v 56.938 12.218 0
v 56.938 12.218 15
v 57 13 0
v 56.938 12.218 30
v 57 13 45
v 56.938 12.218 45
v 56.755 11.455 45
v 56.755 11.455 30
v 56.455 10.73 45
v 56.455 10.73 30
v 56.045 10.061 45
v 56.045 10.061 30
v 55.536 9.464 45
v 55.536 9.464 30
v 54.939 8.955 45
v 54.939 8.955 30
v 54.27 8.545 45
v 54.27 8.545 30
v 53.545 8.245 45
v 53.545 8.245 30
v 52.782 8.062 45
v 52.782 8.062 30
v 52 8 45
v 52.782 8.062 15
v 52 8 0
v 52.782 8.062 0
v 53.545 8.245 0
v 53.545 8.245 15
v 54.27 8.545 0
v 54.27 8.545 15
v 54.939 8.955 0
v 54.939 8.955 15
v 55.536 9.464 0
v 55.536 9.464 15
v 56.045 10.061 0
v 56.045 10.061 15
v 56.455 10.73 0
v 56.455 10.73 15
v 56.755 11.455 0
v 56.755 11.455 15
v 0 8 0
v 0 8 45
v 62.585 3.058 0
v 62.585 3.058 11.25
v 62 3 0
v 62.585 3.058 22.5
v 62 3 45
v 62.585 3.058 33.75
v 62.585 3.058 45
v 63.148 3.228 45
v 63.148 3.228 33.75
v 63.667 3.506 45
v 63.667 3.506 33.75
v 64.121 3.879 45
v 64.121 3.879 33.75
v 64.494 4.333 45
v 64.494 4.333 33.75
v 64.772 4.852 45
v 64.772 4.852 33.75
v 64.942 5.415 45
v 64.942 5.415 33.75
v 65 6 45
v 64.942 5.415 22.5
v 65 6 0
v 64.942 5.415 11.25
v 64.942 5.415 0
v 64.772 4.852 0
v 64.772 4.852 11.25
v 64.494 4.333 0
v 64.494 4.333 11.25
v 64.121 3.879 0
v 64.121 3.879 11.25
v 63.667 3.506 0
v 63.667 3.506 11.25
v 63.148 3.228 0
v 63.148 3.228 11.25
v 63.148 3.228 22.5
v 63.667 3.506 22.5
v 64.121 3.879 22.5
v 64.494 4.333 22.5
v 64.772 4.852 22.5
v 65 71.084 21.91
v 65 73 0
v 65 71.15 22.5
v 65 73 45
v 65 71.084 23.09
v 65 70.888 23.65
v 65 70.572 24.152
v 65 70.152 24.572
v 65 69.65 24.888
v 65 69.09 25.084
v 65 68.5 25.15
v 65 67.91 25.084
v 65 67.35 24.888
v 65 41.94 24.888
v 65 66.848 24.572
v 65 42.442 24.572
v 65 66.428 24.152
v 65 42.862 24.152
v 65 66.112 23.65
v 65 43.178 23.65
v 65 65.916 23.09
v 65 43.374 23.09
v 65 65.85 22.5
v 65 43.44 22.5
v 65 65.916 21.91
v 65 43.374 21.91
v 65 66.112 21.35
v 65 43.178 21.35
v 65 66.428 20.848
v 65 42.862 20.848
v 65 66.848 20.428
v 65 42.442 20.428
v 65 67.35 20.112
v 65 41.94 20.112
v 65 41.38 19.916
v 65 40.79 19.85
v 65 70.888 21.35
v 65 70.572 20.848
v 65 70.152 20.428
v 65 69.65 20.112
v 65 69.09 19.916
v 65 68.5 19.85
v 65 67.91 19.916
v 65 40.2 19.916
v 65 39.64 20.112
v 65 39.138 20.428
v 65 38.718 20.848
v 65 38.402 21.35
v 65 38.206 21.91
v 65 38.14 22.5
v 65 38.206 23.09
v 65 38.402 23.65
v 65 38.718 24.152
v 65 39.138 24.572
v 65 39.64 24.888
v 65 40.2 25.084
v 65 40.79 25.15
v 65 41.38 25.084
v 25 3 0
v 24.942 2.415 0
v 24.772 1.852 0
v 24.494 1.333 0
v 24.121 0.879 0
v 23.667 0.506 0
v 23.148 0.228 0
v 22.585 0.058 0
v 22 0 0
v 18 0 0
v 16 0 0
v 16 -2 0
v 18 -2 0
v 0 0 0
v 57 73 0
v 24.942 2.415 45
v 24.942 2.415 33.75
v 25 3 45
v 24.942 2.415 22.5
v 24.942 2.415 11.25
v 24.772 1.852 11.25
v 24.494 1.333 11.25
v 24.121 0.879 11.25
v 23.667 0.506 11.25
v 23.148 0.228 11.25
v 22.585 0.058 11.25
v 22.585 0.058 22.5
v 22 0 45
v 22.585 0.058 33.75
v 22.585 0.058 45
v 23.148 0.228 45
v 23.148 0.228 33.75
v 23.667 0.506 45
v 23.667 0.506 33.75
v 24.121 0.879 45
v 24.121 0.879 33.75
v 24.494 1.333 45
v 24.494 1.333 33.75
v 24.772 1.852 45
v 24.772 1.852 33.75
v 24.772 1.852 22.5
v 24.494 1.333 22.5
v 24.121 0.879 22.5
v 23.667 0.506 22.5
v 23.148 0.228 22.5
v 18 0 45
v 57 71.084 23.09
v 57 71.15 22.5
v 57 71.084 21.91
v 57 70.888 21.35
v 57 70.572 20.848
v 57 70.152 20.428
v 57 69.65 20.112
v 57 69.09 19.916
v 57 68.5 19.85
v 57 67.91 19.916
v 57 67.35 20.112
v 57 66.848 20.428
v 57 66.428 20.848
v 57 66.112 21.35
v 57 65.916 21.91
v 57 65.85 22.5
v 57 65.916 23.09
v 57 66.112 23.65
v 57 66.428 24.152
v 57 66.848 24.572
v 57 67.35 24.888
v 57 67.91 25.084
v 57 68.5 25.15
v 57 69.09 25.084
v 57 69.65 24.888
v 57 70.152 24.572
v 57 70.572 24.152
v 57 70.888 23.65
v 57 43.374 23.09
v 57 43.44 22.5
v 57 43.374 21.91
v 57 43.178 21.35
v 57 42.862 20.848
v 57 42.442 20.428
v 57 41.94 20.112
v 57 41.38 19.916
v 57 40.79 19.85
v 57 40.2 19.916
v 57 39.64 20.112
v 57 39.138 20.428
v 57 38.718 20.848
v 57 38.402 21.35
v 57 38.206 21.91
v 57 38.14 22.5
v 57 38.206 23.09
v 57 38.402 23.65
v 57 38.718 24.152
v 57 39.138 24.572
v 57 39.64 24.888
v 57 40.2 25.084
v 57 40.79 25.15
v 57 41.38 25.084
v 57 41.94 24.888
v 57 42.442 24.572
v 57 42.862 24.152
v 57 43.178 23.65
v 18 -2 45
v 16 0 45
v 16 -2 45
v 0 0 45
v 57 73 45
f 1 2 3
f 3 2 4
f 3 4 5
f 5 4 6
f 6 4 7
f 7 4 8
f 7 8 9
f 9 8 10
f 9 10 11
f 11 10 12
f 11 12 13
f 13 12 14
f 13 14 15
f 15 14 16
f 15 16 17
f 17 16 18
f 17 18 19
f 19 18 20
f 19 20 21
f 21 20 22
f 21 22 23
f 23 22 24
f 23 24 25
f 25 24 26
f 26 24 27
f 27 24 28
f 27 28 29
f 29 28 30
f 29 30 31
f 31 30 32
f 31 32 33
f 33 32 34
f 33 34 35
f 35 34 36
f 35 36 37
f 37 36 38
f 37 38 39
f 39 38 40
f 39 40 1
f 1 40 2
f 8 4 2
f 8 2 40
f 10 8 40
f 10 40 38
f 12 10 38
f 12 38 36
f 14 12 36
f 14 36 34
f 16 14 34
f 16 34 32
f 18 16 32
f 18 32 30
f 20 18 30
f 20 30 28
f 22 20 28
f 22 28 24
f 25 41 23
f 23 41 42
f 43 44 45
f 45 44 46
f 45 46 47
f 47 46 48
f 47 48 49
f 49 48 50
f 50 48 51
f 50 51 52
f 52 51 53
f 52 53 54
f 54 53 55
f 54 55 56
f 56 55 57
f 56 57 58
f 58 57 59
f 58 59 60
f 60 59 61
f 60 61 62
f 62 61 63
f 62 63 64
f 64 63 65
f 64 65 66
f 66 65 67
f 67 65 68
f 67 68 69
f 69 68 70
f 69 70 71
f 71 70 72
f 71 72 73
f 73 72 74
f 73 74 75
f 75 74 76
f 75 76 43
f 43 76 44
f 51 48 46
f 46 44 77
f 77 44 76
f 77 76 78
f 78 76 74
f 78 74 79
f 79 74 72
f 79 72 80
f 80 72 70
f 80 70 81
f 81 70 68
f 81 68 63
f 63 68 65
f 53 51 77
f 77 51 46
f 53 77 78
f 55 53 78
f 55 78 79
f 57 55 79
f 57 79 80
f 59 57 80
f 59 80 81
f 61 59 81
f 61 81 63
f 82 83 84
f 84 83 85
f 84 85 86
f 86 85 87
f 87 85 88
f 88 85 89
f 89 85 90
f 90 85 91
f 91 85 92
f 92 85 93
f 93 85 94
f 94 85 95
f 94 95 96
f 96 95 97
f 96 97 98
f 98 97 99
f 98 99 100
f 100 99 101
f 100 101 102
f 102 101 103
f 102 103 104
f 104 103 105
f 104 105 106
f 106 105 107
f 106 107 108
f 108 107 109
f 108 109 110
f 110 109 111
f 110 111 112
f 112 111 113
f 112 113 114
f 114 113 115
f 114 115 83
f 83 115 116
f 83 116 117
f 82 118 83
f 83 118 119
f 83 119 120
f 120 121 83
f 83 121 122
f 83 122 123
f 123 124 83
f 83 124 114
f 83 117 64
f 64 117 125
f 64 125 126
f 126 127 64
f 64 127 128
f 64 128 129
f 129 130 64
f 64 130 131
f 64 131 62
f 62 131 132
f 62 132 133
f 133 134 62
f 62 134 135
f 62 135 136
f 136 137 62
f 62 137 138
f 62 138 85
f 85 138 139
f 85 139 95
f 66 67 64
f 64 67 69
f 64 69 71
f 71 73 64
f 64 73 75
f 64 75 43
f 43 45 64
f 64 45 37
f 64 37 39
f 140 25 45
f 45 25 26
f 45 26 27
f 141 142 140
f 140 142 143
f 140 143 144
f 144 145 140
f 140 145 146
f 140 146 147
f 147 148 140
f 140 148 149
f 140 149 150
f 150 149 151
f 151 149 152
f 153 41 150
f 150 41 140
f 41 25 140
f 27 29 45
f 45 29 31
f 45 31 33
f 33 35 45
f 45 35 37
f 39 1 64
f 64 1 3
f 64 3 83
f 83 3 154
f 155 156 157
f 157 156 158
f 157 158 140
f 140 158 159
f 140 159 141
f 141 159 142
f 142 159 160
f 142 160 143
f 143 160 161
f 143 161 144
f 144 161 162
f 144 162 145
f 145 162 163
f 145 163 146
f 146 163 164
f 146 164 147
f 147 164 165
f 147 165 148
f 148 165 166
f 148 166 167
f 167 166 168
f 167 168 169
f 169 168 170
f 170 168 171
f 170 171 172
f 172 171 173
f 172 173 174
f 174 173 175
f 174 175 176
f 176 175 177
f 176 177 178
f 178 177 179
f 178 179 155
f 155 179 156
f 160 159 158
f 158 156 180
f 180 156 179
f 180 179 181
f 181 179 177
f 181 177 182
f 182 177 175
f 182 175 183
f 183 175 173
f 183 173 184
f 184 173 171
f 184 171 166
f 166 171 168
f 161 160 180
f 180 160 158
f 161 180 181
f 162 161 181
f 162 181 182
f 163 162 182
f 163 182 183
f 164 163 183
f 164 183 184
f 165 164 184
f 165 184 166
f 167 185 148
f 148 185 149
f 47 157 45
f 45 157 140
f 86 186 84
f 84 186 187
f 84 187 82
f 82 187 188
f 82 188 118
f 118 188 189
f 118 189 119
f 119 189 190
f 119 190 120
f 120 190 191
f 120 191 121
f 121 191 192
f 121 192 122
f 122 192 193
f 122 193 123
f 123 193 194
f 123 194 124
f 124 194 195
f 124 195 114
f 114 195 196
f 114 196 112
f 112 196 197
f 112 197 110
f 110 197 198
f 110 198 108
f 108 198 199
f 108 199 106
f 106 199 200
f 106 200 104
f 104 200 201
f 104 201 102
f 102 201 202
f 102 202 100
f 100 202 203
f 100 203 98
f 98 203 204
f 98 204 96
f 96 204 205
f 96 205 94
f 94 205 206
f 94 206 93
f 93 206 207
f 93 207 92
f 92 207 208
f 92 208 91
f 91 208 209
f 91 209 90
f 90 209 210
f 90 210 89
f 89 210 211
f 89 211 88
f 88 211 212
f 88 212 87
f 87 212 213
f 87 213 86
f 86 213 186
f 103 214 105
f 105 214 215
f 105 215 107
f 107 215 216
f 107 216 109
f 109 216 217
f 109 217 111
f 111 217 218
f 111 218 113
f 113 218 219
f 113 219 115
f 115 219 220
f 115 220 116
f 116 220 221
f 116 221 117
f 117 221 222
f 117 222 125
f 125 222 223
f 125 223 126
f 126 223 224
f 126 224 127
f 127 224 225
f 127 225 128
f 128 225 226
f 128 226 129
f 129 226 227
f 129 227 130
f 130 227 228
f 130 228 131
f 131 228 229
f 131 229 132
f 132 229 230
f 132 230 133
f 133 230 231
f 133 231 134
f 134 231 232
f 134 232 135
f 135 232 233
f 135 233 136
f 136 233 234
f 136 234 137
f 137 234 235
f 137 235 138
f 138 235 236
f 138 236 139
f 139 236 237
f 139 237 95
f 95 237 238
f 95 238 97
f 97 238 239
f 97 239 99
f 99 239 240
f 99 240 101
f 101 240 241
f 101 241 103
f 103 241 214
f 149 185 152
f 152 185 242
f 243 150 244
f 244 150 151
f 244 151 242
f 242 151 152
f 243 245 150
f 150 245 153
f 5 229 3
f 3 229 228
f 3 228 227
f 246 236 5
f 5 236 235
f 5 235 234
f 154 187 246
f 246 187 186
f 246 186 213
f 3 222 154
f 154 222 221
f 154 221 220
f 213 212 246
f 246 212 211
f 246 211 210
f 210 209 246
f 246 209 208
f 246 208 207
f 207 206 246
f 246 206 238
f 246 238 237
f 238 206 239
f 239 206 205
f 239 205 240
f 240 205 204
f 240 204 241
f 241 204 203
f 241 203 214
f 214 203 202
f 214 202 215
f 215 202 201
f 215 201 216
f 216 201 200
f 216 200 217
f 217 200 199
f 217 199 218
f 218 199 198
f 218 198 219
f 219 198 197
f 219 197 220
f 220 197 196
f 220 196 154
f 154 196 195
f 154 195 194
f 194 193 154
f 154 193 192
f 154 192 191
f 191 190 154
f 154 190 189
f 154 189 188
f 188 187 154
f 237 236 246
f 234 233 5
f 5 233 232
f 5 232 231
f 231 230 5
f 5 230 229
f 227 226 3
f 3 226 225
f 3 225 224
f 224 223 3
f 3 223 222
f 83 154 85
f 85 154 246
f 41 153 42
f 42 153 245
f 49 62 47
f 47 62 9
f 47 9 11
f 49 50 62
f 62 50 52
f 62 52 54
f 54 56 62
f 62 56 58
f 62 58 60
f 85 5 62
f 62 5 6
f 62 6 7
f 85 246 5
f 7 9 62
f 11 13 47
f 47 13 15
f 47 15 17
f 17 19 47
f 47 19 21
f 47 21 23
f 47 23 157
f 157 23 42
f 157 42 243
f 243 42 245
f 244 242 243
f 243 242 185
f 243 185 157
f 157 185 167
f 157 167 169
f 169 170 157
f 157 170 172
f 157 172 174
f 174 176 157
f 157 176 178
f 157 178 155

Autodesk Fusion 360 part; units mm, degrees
sketch "Sketch1" plane through (0, 0, 0) normal (0, 0, 1) x (1, 0, 0)
  line L0 (0, 0) -> (65, 0)
  line L1 (65, 0) -> (65, 8)
  line L2 (65, 8) -> (0, 8)
  line L3 (0, 8) -> (0, 0)
  line L4 (65, 0) -> (57, 0)
  line L5 (57, 0) -> (57, 73)
  line L6 (57, 73) -> (65, 73)
  line L7 (65, 73) -> (65, 0)
  line L8 (65, 0) -> (25, 0)
  line L9 (25, 0) -> (25, 3)
  line L10 (25, 3) -> (65, 3)
  line L11 (65, 3) -> (65, 0)
  dimension "d1" = 65
  dimension "d2" = 8
  dimension "d3" = 8
  dimension "d4" = 73
  dimension "d37" = 40
  dimension "d38" = 3
extrude "Extrude1" add sketch "Sketch1" along normal blind 45
sketch "Sketch2" plane through (0, 0, 0) normal (0, -1, 0) x (1, 0, 0)
  line L0 (0, 0) -> (65, 0)
  line L1 (65, 0) -> (65, 45)
  line L2 (65, 45) -> (0, 45)
  line L3 (0, 45) -> (0, 0)
  line L4 (16, 0) -> (18, 0)
  line L5 (18, 0) -> (18, 60)
  line L6 (18, 60) -> (16, 60)
  line L7 (16, 60) -> (16, 0)
  dimension "d7" = 2
  dimension "d8" = 60
  dimension "d9" = 16
extrude "Extrude2" add sketch "Sketch2" along normal blind 2 contours L0 L2 L4 L5 L7
sketch "Sketch3" plane through (57, 0, 0) normal (-1, 0, 0) x (0, -1, 0)
  line L0 (-73, 0) -> (-8, 0)
  line L1 (-8, 0) -> (-8, 45)
  line L2 (-8, 45) -> (-73, 45)
  line L3 (-73, 45) -> (-73, 0)
  line L4 (-73, 22.5) -> (-8.58, 22.5) construction
  circle A0 centre (-68.5, 22.5) radius 2
  circle A1 centre (-40.79, 22.5) radius 2
  circle A2 centre (-68.5, 22.5) radius 2.65
  circle A3 centre (-40.79, 22.5) radius 2.65
  line L5 (-73, 0) -> (-18, 0)
  line L6 (-18, 0) -> (-18, 10)
  line L7 (-18, 10) -> (-73, 10)
  line L8 (-73, 10) -> (-73, 0)
  dimension "d25" = 4
  dimension "d27" = 4
  dimension "d28" = 4.5
  dimension "d29" = 27.71
  dimension "d30" = 5.3
  dimension "d31" = 5.3
  dimension "d49" = 55
  dimension "d50" = 10
extrude "Extrude5" cut sketch "Sketch3" against normal blind 8 contours A0 | A1
extrude "Extrude6" cut sketch "Sketch3" against normal blind 8 contours A2 | A3
extrude "Extrude7" cut sketch "Sketch1" along normal blind 70 contours L0 L5 L8 L9 L10 | L0 L1 L4 L5 L7 L8 L10 L11
fillet "Fillet1" radius 3 1 edges at (25, 0, 22.5)
fillet "Fillet2" radius 3 1 edges at (65, 3, 22.5)
fillet "Fillet3" radius 5 1 edges at (57, 8, 22.5)
equation "d1 = 39 mm + 5 mm + 16 mm + 5 mm"
equation "d4 = 48 mm + 5 mm + 10 mm + 10 mm"
